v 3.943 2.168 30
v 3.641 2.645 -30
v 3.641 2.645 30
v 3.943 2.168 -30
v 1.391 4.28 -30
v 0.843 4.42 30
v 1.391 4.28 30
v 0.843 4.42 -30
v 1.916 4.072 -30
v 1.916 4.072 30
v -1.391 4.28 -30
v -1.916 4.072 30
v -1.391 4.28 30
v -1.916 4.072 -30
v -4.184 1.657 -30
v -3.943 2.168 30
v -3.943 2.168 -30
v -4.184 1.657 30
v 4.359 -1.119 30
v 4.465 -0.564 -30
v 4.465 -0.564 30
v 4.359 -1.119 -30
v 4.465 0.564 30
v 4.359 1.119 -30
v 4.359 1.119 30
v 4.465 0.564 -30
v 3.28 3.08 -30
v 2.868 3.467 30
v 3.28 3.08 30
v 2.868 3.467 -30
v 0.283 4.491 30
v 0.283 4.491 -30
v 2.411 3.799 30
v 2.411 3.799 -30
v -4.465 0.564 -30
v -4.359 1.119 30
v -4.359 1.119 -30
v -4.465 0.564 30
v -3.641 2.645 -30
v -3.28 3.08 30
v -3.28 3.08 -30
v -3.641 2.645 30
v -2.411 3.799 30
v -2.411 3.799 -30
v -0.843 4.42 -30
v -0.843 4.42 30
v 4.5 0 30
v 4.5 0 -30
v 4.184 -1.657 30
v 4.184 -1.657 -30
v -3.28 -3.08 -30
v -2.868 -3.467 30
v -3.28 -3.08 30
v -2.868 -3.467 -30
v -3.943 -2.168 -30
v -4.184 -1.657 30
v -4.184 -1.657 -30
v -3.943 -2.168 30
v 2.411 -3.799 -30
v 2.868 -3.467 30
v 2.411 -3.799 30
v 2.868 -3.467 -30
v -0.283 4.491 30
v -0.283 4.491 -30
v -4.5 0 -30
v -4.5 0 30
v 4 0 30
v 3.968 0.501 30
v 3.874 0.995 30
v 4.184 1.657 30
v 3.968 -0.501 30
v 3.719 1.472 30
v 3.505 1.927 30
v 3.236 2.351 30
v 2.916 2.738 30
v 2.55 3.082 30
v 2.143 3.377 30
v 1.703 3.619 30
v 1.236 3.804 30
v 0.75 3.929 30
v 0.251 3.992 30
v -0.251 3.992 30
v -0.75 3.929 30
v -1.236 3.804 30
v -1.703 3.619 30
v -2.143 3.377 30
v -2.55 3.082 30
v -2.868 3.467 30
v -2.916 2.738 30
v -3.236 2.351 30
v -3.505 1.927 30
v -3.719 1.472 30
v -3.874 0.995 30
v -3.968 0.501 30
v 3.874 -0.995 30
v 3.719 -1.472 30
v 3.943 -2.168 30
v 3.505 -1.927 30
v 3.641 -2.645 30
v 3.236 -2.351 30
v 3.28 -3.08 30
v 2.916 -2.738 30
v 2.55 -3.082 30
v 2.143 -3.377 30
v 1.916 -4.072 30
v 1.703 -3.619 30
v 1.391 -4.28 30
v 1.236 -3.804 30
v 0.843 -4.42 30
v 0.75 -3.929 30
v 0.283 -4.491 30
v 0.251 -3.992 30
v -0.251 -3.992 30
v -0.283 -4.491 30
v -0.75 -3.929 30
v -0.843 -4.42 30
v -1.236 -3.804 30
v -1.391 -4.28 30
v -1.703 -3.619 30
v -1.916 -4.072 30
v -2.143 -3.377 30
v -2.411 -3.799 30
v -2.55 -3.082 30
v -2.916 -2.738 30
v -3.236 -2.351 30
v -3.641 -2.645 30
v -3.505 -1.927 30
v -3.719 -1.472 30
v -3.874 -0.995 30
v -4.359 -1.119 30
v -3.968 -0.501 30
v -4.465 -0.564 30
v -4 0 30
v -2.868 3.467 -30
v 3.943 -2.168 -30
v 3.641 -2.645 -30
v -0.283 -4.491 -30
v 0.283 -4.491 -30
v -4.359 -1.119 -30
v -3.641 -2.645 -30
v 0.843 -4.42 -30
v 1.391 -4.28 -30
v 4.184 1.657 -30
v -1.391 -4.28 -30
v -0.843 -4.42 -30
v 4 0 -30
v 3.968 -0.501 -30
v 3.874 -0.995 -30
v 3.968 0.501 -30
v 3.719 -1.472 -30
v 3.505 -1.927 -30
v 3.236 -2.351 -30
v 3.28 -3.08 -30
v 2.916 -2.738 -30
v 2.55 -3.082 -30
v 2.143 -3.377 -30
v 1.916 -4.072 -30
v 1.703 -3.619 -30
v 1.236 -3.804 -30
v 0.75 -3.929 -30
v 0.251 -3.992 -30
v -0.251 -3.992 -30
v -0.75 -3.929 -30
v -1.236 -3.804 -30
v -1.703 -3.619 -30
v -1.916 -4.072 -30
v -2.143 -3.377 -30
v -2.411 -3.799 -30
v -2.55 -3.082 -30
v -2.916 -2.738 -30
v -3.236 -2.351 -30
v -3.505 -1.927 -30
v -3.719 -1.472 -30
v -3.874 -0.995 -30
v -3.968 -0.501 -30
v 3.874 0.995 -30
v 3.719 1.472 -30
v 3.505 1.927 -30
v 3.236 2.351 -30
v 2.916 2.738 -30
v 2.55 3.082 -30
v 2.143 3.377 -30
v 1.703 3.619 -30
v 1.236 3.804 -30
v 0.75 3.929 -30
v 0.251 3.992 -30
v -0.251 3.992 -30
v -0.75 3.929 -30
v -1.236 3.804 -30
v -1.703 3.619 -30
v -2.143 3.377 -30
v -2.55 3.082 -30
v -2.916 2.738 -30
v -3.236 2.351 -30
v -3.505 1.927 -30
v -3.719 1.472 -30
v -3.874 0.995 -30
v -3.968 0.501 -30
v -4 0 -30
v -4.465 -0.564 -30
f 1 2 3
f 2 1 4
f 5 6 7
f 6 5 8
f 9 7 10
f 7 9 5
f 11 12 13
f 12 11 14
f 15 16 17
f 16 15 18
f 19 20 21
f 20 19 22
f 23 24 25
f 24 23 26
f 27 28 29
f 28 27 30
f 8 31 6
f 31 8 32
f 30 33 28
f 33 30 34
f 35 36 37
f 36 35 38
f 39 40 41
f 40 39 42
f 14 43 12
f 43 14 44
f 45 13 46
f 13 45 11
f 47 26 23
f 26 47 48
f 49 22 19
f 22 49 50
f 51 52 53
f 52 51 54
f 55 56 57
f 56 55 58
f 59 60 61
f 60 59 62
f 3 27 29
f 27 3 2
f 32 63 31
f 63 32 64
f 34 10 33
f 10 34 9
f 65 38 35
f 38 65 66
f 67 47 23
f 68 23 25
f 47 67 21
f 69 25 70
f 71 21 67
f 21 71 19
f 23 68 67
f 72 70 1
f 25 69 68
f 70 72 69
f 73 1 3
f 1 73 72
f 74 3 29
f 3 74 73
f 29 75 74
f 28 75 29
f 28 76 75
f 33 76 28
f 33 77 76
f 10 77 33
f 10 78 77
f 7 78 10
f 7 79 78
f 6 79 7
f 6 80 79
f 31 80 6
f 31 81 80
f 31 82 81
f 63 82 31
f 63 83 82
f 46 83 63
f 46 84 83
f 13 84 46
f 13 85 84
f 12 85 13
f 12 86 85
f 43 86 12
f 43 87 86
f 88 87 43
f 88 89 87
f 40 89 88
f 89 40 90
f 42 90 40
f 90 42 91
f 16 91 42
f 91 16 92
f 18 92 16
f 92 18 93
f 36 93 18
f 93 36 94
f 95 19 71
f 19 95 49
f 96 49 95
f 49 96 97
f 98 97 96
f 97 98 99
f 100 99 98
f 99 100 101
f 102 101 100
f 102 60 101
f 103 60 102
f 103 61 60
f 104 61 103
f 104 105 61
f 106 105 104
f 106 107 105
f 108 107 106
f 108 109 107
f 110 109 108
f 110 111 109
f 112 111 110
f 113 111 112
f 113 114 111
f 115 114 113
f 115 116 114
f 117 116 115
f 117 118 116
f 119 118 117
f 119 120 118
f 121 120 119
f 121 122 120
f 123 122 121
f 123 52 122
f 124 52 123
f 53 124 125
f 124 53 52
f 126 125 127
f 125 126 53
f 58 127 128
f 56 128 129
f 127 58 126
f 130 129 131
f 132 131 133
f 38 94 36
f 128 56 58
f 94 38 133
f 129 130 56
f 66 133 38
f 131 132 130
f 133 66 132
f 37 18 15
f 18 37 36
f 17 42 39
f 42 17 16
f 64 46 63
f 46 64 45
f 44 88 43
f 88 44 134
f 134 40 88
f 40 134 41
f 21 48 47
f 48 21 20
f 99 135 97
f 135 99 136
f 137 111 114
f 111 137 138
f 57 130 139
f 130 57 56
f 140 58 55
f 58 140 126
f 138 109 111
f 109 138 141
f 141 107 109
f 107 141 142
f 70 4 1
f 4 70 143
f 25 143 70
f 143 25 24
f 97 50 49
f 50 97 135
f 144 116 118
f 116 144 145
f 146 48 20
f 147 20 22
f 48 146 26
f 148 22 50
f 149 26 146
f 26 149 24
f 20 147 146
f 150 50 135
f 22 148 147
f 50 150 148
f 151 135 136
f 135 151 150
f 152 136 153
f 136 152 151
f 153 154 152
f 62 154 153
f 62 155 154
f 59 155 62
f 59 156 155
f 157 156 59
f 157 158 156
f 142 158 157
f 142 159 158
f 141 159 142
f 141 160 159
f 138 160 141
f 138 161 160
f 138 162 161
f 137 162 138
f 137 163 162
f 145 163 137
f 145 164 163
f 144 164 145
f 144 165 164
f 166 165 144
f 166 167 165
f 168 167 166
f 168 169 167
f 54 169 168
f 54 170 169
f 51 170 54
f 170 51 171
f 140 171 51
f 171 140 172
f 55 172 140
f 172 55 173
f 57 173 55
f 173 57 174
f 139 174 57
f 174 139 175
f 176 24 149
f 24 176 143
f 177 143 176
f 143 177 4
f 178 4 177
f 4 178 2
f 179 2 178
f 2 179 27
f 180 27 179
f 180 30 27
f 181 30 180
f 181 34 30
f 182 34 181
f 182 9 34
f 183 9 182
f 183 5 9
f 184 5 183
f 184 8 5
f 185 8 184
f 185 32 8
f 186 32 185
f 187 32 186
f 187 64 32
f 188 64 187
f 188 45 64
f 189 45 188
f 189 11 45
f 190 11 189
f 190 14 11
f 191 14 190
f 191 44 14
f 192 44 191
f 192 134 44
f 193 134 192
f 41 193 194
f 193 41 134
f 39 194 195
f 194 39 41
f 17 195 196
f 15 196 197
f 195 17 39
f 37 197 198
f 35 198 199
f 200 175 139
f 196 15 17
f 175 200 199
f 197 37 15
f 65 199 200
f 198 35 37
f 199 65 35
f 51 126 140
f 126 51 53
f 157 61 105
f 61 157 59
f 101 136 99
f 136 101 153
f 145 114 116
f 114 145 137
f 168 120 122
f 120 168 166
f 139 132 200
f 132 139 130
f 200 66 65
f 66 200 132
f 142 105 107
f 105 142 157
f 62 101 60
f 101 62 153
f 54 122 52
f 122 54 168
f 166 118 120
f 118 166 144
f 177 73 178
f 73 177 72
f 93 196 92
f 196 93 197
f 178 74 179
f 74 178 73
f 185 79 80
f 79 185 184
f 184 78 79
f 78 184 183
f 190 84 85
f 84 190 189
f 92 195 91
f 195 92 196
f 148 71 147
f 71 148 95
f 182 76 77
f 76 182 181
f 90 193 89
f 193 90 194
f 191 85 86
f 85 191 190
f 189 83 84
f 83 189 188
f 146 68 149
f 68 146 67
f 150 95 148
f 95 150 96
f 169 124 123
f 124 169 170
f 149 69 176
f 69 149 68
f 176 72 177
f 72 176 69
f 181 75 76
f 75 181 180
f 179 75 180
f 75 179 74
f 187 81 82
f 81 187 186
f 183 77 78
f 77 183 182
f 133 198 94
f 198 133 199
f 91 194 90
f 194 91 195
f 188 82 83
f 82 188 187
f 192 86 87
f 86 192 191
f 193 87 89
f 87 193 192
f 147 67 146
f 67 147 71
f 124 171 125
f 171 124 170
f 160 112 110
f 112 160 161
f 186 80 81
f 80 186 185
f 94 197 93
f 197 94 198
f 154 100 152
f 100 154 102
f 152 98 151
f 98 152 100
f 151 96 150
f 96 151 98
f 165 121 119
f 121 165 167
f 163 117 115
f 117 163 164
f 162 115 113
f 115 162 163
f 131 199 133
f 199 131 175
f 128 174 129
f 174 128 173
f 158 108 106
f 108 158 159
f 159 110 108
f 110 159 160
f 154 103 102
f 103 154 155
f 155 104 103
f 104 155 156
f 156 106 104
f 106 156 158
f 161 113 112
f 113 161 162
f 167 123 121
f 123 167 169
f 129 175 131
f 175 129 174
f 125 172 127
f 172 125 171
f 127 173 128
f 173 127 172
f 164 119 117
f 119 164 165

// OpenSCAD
$fn = 50;


difference() {
	union() {
		translate(v = [0, 0, -30.0000000000]) {
			cylinder(h = 60, r = 4.5000000000);
		}
	}
	union() {
		translate(v = [0, 0, -100.0000000000]) {
			cylinder(h = 200, r = 4);
		}
	}
}
